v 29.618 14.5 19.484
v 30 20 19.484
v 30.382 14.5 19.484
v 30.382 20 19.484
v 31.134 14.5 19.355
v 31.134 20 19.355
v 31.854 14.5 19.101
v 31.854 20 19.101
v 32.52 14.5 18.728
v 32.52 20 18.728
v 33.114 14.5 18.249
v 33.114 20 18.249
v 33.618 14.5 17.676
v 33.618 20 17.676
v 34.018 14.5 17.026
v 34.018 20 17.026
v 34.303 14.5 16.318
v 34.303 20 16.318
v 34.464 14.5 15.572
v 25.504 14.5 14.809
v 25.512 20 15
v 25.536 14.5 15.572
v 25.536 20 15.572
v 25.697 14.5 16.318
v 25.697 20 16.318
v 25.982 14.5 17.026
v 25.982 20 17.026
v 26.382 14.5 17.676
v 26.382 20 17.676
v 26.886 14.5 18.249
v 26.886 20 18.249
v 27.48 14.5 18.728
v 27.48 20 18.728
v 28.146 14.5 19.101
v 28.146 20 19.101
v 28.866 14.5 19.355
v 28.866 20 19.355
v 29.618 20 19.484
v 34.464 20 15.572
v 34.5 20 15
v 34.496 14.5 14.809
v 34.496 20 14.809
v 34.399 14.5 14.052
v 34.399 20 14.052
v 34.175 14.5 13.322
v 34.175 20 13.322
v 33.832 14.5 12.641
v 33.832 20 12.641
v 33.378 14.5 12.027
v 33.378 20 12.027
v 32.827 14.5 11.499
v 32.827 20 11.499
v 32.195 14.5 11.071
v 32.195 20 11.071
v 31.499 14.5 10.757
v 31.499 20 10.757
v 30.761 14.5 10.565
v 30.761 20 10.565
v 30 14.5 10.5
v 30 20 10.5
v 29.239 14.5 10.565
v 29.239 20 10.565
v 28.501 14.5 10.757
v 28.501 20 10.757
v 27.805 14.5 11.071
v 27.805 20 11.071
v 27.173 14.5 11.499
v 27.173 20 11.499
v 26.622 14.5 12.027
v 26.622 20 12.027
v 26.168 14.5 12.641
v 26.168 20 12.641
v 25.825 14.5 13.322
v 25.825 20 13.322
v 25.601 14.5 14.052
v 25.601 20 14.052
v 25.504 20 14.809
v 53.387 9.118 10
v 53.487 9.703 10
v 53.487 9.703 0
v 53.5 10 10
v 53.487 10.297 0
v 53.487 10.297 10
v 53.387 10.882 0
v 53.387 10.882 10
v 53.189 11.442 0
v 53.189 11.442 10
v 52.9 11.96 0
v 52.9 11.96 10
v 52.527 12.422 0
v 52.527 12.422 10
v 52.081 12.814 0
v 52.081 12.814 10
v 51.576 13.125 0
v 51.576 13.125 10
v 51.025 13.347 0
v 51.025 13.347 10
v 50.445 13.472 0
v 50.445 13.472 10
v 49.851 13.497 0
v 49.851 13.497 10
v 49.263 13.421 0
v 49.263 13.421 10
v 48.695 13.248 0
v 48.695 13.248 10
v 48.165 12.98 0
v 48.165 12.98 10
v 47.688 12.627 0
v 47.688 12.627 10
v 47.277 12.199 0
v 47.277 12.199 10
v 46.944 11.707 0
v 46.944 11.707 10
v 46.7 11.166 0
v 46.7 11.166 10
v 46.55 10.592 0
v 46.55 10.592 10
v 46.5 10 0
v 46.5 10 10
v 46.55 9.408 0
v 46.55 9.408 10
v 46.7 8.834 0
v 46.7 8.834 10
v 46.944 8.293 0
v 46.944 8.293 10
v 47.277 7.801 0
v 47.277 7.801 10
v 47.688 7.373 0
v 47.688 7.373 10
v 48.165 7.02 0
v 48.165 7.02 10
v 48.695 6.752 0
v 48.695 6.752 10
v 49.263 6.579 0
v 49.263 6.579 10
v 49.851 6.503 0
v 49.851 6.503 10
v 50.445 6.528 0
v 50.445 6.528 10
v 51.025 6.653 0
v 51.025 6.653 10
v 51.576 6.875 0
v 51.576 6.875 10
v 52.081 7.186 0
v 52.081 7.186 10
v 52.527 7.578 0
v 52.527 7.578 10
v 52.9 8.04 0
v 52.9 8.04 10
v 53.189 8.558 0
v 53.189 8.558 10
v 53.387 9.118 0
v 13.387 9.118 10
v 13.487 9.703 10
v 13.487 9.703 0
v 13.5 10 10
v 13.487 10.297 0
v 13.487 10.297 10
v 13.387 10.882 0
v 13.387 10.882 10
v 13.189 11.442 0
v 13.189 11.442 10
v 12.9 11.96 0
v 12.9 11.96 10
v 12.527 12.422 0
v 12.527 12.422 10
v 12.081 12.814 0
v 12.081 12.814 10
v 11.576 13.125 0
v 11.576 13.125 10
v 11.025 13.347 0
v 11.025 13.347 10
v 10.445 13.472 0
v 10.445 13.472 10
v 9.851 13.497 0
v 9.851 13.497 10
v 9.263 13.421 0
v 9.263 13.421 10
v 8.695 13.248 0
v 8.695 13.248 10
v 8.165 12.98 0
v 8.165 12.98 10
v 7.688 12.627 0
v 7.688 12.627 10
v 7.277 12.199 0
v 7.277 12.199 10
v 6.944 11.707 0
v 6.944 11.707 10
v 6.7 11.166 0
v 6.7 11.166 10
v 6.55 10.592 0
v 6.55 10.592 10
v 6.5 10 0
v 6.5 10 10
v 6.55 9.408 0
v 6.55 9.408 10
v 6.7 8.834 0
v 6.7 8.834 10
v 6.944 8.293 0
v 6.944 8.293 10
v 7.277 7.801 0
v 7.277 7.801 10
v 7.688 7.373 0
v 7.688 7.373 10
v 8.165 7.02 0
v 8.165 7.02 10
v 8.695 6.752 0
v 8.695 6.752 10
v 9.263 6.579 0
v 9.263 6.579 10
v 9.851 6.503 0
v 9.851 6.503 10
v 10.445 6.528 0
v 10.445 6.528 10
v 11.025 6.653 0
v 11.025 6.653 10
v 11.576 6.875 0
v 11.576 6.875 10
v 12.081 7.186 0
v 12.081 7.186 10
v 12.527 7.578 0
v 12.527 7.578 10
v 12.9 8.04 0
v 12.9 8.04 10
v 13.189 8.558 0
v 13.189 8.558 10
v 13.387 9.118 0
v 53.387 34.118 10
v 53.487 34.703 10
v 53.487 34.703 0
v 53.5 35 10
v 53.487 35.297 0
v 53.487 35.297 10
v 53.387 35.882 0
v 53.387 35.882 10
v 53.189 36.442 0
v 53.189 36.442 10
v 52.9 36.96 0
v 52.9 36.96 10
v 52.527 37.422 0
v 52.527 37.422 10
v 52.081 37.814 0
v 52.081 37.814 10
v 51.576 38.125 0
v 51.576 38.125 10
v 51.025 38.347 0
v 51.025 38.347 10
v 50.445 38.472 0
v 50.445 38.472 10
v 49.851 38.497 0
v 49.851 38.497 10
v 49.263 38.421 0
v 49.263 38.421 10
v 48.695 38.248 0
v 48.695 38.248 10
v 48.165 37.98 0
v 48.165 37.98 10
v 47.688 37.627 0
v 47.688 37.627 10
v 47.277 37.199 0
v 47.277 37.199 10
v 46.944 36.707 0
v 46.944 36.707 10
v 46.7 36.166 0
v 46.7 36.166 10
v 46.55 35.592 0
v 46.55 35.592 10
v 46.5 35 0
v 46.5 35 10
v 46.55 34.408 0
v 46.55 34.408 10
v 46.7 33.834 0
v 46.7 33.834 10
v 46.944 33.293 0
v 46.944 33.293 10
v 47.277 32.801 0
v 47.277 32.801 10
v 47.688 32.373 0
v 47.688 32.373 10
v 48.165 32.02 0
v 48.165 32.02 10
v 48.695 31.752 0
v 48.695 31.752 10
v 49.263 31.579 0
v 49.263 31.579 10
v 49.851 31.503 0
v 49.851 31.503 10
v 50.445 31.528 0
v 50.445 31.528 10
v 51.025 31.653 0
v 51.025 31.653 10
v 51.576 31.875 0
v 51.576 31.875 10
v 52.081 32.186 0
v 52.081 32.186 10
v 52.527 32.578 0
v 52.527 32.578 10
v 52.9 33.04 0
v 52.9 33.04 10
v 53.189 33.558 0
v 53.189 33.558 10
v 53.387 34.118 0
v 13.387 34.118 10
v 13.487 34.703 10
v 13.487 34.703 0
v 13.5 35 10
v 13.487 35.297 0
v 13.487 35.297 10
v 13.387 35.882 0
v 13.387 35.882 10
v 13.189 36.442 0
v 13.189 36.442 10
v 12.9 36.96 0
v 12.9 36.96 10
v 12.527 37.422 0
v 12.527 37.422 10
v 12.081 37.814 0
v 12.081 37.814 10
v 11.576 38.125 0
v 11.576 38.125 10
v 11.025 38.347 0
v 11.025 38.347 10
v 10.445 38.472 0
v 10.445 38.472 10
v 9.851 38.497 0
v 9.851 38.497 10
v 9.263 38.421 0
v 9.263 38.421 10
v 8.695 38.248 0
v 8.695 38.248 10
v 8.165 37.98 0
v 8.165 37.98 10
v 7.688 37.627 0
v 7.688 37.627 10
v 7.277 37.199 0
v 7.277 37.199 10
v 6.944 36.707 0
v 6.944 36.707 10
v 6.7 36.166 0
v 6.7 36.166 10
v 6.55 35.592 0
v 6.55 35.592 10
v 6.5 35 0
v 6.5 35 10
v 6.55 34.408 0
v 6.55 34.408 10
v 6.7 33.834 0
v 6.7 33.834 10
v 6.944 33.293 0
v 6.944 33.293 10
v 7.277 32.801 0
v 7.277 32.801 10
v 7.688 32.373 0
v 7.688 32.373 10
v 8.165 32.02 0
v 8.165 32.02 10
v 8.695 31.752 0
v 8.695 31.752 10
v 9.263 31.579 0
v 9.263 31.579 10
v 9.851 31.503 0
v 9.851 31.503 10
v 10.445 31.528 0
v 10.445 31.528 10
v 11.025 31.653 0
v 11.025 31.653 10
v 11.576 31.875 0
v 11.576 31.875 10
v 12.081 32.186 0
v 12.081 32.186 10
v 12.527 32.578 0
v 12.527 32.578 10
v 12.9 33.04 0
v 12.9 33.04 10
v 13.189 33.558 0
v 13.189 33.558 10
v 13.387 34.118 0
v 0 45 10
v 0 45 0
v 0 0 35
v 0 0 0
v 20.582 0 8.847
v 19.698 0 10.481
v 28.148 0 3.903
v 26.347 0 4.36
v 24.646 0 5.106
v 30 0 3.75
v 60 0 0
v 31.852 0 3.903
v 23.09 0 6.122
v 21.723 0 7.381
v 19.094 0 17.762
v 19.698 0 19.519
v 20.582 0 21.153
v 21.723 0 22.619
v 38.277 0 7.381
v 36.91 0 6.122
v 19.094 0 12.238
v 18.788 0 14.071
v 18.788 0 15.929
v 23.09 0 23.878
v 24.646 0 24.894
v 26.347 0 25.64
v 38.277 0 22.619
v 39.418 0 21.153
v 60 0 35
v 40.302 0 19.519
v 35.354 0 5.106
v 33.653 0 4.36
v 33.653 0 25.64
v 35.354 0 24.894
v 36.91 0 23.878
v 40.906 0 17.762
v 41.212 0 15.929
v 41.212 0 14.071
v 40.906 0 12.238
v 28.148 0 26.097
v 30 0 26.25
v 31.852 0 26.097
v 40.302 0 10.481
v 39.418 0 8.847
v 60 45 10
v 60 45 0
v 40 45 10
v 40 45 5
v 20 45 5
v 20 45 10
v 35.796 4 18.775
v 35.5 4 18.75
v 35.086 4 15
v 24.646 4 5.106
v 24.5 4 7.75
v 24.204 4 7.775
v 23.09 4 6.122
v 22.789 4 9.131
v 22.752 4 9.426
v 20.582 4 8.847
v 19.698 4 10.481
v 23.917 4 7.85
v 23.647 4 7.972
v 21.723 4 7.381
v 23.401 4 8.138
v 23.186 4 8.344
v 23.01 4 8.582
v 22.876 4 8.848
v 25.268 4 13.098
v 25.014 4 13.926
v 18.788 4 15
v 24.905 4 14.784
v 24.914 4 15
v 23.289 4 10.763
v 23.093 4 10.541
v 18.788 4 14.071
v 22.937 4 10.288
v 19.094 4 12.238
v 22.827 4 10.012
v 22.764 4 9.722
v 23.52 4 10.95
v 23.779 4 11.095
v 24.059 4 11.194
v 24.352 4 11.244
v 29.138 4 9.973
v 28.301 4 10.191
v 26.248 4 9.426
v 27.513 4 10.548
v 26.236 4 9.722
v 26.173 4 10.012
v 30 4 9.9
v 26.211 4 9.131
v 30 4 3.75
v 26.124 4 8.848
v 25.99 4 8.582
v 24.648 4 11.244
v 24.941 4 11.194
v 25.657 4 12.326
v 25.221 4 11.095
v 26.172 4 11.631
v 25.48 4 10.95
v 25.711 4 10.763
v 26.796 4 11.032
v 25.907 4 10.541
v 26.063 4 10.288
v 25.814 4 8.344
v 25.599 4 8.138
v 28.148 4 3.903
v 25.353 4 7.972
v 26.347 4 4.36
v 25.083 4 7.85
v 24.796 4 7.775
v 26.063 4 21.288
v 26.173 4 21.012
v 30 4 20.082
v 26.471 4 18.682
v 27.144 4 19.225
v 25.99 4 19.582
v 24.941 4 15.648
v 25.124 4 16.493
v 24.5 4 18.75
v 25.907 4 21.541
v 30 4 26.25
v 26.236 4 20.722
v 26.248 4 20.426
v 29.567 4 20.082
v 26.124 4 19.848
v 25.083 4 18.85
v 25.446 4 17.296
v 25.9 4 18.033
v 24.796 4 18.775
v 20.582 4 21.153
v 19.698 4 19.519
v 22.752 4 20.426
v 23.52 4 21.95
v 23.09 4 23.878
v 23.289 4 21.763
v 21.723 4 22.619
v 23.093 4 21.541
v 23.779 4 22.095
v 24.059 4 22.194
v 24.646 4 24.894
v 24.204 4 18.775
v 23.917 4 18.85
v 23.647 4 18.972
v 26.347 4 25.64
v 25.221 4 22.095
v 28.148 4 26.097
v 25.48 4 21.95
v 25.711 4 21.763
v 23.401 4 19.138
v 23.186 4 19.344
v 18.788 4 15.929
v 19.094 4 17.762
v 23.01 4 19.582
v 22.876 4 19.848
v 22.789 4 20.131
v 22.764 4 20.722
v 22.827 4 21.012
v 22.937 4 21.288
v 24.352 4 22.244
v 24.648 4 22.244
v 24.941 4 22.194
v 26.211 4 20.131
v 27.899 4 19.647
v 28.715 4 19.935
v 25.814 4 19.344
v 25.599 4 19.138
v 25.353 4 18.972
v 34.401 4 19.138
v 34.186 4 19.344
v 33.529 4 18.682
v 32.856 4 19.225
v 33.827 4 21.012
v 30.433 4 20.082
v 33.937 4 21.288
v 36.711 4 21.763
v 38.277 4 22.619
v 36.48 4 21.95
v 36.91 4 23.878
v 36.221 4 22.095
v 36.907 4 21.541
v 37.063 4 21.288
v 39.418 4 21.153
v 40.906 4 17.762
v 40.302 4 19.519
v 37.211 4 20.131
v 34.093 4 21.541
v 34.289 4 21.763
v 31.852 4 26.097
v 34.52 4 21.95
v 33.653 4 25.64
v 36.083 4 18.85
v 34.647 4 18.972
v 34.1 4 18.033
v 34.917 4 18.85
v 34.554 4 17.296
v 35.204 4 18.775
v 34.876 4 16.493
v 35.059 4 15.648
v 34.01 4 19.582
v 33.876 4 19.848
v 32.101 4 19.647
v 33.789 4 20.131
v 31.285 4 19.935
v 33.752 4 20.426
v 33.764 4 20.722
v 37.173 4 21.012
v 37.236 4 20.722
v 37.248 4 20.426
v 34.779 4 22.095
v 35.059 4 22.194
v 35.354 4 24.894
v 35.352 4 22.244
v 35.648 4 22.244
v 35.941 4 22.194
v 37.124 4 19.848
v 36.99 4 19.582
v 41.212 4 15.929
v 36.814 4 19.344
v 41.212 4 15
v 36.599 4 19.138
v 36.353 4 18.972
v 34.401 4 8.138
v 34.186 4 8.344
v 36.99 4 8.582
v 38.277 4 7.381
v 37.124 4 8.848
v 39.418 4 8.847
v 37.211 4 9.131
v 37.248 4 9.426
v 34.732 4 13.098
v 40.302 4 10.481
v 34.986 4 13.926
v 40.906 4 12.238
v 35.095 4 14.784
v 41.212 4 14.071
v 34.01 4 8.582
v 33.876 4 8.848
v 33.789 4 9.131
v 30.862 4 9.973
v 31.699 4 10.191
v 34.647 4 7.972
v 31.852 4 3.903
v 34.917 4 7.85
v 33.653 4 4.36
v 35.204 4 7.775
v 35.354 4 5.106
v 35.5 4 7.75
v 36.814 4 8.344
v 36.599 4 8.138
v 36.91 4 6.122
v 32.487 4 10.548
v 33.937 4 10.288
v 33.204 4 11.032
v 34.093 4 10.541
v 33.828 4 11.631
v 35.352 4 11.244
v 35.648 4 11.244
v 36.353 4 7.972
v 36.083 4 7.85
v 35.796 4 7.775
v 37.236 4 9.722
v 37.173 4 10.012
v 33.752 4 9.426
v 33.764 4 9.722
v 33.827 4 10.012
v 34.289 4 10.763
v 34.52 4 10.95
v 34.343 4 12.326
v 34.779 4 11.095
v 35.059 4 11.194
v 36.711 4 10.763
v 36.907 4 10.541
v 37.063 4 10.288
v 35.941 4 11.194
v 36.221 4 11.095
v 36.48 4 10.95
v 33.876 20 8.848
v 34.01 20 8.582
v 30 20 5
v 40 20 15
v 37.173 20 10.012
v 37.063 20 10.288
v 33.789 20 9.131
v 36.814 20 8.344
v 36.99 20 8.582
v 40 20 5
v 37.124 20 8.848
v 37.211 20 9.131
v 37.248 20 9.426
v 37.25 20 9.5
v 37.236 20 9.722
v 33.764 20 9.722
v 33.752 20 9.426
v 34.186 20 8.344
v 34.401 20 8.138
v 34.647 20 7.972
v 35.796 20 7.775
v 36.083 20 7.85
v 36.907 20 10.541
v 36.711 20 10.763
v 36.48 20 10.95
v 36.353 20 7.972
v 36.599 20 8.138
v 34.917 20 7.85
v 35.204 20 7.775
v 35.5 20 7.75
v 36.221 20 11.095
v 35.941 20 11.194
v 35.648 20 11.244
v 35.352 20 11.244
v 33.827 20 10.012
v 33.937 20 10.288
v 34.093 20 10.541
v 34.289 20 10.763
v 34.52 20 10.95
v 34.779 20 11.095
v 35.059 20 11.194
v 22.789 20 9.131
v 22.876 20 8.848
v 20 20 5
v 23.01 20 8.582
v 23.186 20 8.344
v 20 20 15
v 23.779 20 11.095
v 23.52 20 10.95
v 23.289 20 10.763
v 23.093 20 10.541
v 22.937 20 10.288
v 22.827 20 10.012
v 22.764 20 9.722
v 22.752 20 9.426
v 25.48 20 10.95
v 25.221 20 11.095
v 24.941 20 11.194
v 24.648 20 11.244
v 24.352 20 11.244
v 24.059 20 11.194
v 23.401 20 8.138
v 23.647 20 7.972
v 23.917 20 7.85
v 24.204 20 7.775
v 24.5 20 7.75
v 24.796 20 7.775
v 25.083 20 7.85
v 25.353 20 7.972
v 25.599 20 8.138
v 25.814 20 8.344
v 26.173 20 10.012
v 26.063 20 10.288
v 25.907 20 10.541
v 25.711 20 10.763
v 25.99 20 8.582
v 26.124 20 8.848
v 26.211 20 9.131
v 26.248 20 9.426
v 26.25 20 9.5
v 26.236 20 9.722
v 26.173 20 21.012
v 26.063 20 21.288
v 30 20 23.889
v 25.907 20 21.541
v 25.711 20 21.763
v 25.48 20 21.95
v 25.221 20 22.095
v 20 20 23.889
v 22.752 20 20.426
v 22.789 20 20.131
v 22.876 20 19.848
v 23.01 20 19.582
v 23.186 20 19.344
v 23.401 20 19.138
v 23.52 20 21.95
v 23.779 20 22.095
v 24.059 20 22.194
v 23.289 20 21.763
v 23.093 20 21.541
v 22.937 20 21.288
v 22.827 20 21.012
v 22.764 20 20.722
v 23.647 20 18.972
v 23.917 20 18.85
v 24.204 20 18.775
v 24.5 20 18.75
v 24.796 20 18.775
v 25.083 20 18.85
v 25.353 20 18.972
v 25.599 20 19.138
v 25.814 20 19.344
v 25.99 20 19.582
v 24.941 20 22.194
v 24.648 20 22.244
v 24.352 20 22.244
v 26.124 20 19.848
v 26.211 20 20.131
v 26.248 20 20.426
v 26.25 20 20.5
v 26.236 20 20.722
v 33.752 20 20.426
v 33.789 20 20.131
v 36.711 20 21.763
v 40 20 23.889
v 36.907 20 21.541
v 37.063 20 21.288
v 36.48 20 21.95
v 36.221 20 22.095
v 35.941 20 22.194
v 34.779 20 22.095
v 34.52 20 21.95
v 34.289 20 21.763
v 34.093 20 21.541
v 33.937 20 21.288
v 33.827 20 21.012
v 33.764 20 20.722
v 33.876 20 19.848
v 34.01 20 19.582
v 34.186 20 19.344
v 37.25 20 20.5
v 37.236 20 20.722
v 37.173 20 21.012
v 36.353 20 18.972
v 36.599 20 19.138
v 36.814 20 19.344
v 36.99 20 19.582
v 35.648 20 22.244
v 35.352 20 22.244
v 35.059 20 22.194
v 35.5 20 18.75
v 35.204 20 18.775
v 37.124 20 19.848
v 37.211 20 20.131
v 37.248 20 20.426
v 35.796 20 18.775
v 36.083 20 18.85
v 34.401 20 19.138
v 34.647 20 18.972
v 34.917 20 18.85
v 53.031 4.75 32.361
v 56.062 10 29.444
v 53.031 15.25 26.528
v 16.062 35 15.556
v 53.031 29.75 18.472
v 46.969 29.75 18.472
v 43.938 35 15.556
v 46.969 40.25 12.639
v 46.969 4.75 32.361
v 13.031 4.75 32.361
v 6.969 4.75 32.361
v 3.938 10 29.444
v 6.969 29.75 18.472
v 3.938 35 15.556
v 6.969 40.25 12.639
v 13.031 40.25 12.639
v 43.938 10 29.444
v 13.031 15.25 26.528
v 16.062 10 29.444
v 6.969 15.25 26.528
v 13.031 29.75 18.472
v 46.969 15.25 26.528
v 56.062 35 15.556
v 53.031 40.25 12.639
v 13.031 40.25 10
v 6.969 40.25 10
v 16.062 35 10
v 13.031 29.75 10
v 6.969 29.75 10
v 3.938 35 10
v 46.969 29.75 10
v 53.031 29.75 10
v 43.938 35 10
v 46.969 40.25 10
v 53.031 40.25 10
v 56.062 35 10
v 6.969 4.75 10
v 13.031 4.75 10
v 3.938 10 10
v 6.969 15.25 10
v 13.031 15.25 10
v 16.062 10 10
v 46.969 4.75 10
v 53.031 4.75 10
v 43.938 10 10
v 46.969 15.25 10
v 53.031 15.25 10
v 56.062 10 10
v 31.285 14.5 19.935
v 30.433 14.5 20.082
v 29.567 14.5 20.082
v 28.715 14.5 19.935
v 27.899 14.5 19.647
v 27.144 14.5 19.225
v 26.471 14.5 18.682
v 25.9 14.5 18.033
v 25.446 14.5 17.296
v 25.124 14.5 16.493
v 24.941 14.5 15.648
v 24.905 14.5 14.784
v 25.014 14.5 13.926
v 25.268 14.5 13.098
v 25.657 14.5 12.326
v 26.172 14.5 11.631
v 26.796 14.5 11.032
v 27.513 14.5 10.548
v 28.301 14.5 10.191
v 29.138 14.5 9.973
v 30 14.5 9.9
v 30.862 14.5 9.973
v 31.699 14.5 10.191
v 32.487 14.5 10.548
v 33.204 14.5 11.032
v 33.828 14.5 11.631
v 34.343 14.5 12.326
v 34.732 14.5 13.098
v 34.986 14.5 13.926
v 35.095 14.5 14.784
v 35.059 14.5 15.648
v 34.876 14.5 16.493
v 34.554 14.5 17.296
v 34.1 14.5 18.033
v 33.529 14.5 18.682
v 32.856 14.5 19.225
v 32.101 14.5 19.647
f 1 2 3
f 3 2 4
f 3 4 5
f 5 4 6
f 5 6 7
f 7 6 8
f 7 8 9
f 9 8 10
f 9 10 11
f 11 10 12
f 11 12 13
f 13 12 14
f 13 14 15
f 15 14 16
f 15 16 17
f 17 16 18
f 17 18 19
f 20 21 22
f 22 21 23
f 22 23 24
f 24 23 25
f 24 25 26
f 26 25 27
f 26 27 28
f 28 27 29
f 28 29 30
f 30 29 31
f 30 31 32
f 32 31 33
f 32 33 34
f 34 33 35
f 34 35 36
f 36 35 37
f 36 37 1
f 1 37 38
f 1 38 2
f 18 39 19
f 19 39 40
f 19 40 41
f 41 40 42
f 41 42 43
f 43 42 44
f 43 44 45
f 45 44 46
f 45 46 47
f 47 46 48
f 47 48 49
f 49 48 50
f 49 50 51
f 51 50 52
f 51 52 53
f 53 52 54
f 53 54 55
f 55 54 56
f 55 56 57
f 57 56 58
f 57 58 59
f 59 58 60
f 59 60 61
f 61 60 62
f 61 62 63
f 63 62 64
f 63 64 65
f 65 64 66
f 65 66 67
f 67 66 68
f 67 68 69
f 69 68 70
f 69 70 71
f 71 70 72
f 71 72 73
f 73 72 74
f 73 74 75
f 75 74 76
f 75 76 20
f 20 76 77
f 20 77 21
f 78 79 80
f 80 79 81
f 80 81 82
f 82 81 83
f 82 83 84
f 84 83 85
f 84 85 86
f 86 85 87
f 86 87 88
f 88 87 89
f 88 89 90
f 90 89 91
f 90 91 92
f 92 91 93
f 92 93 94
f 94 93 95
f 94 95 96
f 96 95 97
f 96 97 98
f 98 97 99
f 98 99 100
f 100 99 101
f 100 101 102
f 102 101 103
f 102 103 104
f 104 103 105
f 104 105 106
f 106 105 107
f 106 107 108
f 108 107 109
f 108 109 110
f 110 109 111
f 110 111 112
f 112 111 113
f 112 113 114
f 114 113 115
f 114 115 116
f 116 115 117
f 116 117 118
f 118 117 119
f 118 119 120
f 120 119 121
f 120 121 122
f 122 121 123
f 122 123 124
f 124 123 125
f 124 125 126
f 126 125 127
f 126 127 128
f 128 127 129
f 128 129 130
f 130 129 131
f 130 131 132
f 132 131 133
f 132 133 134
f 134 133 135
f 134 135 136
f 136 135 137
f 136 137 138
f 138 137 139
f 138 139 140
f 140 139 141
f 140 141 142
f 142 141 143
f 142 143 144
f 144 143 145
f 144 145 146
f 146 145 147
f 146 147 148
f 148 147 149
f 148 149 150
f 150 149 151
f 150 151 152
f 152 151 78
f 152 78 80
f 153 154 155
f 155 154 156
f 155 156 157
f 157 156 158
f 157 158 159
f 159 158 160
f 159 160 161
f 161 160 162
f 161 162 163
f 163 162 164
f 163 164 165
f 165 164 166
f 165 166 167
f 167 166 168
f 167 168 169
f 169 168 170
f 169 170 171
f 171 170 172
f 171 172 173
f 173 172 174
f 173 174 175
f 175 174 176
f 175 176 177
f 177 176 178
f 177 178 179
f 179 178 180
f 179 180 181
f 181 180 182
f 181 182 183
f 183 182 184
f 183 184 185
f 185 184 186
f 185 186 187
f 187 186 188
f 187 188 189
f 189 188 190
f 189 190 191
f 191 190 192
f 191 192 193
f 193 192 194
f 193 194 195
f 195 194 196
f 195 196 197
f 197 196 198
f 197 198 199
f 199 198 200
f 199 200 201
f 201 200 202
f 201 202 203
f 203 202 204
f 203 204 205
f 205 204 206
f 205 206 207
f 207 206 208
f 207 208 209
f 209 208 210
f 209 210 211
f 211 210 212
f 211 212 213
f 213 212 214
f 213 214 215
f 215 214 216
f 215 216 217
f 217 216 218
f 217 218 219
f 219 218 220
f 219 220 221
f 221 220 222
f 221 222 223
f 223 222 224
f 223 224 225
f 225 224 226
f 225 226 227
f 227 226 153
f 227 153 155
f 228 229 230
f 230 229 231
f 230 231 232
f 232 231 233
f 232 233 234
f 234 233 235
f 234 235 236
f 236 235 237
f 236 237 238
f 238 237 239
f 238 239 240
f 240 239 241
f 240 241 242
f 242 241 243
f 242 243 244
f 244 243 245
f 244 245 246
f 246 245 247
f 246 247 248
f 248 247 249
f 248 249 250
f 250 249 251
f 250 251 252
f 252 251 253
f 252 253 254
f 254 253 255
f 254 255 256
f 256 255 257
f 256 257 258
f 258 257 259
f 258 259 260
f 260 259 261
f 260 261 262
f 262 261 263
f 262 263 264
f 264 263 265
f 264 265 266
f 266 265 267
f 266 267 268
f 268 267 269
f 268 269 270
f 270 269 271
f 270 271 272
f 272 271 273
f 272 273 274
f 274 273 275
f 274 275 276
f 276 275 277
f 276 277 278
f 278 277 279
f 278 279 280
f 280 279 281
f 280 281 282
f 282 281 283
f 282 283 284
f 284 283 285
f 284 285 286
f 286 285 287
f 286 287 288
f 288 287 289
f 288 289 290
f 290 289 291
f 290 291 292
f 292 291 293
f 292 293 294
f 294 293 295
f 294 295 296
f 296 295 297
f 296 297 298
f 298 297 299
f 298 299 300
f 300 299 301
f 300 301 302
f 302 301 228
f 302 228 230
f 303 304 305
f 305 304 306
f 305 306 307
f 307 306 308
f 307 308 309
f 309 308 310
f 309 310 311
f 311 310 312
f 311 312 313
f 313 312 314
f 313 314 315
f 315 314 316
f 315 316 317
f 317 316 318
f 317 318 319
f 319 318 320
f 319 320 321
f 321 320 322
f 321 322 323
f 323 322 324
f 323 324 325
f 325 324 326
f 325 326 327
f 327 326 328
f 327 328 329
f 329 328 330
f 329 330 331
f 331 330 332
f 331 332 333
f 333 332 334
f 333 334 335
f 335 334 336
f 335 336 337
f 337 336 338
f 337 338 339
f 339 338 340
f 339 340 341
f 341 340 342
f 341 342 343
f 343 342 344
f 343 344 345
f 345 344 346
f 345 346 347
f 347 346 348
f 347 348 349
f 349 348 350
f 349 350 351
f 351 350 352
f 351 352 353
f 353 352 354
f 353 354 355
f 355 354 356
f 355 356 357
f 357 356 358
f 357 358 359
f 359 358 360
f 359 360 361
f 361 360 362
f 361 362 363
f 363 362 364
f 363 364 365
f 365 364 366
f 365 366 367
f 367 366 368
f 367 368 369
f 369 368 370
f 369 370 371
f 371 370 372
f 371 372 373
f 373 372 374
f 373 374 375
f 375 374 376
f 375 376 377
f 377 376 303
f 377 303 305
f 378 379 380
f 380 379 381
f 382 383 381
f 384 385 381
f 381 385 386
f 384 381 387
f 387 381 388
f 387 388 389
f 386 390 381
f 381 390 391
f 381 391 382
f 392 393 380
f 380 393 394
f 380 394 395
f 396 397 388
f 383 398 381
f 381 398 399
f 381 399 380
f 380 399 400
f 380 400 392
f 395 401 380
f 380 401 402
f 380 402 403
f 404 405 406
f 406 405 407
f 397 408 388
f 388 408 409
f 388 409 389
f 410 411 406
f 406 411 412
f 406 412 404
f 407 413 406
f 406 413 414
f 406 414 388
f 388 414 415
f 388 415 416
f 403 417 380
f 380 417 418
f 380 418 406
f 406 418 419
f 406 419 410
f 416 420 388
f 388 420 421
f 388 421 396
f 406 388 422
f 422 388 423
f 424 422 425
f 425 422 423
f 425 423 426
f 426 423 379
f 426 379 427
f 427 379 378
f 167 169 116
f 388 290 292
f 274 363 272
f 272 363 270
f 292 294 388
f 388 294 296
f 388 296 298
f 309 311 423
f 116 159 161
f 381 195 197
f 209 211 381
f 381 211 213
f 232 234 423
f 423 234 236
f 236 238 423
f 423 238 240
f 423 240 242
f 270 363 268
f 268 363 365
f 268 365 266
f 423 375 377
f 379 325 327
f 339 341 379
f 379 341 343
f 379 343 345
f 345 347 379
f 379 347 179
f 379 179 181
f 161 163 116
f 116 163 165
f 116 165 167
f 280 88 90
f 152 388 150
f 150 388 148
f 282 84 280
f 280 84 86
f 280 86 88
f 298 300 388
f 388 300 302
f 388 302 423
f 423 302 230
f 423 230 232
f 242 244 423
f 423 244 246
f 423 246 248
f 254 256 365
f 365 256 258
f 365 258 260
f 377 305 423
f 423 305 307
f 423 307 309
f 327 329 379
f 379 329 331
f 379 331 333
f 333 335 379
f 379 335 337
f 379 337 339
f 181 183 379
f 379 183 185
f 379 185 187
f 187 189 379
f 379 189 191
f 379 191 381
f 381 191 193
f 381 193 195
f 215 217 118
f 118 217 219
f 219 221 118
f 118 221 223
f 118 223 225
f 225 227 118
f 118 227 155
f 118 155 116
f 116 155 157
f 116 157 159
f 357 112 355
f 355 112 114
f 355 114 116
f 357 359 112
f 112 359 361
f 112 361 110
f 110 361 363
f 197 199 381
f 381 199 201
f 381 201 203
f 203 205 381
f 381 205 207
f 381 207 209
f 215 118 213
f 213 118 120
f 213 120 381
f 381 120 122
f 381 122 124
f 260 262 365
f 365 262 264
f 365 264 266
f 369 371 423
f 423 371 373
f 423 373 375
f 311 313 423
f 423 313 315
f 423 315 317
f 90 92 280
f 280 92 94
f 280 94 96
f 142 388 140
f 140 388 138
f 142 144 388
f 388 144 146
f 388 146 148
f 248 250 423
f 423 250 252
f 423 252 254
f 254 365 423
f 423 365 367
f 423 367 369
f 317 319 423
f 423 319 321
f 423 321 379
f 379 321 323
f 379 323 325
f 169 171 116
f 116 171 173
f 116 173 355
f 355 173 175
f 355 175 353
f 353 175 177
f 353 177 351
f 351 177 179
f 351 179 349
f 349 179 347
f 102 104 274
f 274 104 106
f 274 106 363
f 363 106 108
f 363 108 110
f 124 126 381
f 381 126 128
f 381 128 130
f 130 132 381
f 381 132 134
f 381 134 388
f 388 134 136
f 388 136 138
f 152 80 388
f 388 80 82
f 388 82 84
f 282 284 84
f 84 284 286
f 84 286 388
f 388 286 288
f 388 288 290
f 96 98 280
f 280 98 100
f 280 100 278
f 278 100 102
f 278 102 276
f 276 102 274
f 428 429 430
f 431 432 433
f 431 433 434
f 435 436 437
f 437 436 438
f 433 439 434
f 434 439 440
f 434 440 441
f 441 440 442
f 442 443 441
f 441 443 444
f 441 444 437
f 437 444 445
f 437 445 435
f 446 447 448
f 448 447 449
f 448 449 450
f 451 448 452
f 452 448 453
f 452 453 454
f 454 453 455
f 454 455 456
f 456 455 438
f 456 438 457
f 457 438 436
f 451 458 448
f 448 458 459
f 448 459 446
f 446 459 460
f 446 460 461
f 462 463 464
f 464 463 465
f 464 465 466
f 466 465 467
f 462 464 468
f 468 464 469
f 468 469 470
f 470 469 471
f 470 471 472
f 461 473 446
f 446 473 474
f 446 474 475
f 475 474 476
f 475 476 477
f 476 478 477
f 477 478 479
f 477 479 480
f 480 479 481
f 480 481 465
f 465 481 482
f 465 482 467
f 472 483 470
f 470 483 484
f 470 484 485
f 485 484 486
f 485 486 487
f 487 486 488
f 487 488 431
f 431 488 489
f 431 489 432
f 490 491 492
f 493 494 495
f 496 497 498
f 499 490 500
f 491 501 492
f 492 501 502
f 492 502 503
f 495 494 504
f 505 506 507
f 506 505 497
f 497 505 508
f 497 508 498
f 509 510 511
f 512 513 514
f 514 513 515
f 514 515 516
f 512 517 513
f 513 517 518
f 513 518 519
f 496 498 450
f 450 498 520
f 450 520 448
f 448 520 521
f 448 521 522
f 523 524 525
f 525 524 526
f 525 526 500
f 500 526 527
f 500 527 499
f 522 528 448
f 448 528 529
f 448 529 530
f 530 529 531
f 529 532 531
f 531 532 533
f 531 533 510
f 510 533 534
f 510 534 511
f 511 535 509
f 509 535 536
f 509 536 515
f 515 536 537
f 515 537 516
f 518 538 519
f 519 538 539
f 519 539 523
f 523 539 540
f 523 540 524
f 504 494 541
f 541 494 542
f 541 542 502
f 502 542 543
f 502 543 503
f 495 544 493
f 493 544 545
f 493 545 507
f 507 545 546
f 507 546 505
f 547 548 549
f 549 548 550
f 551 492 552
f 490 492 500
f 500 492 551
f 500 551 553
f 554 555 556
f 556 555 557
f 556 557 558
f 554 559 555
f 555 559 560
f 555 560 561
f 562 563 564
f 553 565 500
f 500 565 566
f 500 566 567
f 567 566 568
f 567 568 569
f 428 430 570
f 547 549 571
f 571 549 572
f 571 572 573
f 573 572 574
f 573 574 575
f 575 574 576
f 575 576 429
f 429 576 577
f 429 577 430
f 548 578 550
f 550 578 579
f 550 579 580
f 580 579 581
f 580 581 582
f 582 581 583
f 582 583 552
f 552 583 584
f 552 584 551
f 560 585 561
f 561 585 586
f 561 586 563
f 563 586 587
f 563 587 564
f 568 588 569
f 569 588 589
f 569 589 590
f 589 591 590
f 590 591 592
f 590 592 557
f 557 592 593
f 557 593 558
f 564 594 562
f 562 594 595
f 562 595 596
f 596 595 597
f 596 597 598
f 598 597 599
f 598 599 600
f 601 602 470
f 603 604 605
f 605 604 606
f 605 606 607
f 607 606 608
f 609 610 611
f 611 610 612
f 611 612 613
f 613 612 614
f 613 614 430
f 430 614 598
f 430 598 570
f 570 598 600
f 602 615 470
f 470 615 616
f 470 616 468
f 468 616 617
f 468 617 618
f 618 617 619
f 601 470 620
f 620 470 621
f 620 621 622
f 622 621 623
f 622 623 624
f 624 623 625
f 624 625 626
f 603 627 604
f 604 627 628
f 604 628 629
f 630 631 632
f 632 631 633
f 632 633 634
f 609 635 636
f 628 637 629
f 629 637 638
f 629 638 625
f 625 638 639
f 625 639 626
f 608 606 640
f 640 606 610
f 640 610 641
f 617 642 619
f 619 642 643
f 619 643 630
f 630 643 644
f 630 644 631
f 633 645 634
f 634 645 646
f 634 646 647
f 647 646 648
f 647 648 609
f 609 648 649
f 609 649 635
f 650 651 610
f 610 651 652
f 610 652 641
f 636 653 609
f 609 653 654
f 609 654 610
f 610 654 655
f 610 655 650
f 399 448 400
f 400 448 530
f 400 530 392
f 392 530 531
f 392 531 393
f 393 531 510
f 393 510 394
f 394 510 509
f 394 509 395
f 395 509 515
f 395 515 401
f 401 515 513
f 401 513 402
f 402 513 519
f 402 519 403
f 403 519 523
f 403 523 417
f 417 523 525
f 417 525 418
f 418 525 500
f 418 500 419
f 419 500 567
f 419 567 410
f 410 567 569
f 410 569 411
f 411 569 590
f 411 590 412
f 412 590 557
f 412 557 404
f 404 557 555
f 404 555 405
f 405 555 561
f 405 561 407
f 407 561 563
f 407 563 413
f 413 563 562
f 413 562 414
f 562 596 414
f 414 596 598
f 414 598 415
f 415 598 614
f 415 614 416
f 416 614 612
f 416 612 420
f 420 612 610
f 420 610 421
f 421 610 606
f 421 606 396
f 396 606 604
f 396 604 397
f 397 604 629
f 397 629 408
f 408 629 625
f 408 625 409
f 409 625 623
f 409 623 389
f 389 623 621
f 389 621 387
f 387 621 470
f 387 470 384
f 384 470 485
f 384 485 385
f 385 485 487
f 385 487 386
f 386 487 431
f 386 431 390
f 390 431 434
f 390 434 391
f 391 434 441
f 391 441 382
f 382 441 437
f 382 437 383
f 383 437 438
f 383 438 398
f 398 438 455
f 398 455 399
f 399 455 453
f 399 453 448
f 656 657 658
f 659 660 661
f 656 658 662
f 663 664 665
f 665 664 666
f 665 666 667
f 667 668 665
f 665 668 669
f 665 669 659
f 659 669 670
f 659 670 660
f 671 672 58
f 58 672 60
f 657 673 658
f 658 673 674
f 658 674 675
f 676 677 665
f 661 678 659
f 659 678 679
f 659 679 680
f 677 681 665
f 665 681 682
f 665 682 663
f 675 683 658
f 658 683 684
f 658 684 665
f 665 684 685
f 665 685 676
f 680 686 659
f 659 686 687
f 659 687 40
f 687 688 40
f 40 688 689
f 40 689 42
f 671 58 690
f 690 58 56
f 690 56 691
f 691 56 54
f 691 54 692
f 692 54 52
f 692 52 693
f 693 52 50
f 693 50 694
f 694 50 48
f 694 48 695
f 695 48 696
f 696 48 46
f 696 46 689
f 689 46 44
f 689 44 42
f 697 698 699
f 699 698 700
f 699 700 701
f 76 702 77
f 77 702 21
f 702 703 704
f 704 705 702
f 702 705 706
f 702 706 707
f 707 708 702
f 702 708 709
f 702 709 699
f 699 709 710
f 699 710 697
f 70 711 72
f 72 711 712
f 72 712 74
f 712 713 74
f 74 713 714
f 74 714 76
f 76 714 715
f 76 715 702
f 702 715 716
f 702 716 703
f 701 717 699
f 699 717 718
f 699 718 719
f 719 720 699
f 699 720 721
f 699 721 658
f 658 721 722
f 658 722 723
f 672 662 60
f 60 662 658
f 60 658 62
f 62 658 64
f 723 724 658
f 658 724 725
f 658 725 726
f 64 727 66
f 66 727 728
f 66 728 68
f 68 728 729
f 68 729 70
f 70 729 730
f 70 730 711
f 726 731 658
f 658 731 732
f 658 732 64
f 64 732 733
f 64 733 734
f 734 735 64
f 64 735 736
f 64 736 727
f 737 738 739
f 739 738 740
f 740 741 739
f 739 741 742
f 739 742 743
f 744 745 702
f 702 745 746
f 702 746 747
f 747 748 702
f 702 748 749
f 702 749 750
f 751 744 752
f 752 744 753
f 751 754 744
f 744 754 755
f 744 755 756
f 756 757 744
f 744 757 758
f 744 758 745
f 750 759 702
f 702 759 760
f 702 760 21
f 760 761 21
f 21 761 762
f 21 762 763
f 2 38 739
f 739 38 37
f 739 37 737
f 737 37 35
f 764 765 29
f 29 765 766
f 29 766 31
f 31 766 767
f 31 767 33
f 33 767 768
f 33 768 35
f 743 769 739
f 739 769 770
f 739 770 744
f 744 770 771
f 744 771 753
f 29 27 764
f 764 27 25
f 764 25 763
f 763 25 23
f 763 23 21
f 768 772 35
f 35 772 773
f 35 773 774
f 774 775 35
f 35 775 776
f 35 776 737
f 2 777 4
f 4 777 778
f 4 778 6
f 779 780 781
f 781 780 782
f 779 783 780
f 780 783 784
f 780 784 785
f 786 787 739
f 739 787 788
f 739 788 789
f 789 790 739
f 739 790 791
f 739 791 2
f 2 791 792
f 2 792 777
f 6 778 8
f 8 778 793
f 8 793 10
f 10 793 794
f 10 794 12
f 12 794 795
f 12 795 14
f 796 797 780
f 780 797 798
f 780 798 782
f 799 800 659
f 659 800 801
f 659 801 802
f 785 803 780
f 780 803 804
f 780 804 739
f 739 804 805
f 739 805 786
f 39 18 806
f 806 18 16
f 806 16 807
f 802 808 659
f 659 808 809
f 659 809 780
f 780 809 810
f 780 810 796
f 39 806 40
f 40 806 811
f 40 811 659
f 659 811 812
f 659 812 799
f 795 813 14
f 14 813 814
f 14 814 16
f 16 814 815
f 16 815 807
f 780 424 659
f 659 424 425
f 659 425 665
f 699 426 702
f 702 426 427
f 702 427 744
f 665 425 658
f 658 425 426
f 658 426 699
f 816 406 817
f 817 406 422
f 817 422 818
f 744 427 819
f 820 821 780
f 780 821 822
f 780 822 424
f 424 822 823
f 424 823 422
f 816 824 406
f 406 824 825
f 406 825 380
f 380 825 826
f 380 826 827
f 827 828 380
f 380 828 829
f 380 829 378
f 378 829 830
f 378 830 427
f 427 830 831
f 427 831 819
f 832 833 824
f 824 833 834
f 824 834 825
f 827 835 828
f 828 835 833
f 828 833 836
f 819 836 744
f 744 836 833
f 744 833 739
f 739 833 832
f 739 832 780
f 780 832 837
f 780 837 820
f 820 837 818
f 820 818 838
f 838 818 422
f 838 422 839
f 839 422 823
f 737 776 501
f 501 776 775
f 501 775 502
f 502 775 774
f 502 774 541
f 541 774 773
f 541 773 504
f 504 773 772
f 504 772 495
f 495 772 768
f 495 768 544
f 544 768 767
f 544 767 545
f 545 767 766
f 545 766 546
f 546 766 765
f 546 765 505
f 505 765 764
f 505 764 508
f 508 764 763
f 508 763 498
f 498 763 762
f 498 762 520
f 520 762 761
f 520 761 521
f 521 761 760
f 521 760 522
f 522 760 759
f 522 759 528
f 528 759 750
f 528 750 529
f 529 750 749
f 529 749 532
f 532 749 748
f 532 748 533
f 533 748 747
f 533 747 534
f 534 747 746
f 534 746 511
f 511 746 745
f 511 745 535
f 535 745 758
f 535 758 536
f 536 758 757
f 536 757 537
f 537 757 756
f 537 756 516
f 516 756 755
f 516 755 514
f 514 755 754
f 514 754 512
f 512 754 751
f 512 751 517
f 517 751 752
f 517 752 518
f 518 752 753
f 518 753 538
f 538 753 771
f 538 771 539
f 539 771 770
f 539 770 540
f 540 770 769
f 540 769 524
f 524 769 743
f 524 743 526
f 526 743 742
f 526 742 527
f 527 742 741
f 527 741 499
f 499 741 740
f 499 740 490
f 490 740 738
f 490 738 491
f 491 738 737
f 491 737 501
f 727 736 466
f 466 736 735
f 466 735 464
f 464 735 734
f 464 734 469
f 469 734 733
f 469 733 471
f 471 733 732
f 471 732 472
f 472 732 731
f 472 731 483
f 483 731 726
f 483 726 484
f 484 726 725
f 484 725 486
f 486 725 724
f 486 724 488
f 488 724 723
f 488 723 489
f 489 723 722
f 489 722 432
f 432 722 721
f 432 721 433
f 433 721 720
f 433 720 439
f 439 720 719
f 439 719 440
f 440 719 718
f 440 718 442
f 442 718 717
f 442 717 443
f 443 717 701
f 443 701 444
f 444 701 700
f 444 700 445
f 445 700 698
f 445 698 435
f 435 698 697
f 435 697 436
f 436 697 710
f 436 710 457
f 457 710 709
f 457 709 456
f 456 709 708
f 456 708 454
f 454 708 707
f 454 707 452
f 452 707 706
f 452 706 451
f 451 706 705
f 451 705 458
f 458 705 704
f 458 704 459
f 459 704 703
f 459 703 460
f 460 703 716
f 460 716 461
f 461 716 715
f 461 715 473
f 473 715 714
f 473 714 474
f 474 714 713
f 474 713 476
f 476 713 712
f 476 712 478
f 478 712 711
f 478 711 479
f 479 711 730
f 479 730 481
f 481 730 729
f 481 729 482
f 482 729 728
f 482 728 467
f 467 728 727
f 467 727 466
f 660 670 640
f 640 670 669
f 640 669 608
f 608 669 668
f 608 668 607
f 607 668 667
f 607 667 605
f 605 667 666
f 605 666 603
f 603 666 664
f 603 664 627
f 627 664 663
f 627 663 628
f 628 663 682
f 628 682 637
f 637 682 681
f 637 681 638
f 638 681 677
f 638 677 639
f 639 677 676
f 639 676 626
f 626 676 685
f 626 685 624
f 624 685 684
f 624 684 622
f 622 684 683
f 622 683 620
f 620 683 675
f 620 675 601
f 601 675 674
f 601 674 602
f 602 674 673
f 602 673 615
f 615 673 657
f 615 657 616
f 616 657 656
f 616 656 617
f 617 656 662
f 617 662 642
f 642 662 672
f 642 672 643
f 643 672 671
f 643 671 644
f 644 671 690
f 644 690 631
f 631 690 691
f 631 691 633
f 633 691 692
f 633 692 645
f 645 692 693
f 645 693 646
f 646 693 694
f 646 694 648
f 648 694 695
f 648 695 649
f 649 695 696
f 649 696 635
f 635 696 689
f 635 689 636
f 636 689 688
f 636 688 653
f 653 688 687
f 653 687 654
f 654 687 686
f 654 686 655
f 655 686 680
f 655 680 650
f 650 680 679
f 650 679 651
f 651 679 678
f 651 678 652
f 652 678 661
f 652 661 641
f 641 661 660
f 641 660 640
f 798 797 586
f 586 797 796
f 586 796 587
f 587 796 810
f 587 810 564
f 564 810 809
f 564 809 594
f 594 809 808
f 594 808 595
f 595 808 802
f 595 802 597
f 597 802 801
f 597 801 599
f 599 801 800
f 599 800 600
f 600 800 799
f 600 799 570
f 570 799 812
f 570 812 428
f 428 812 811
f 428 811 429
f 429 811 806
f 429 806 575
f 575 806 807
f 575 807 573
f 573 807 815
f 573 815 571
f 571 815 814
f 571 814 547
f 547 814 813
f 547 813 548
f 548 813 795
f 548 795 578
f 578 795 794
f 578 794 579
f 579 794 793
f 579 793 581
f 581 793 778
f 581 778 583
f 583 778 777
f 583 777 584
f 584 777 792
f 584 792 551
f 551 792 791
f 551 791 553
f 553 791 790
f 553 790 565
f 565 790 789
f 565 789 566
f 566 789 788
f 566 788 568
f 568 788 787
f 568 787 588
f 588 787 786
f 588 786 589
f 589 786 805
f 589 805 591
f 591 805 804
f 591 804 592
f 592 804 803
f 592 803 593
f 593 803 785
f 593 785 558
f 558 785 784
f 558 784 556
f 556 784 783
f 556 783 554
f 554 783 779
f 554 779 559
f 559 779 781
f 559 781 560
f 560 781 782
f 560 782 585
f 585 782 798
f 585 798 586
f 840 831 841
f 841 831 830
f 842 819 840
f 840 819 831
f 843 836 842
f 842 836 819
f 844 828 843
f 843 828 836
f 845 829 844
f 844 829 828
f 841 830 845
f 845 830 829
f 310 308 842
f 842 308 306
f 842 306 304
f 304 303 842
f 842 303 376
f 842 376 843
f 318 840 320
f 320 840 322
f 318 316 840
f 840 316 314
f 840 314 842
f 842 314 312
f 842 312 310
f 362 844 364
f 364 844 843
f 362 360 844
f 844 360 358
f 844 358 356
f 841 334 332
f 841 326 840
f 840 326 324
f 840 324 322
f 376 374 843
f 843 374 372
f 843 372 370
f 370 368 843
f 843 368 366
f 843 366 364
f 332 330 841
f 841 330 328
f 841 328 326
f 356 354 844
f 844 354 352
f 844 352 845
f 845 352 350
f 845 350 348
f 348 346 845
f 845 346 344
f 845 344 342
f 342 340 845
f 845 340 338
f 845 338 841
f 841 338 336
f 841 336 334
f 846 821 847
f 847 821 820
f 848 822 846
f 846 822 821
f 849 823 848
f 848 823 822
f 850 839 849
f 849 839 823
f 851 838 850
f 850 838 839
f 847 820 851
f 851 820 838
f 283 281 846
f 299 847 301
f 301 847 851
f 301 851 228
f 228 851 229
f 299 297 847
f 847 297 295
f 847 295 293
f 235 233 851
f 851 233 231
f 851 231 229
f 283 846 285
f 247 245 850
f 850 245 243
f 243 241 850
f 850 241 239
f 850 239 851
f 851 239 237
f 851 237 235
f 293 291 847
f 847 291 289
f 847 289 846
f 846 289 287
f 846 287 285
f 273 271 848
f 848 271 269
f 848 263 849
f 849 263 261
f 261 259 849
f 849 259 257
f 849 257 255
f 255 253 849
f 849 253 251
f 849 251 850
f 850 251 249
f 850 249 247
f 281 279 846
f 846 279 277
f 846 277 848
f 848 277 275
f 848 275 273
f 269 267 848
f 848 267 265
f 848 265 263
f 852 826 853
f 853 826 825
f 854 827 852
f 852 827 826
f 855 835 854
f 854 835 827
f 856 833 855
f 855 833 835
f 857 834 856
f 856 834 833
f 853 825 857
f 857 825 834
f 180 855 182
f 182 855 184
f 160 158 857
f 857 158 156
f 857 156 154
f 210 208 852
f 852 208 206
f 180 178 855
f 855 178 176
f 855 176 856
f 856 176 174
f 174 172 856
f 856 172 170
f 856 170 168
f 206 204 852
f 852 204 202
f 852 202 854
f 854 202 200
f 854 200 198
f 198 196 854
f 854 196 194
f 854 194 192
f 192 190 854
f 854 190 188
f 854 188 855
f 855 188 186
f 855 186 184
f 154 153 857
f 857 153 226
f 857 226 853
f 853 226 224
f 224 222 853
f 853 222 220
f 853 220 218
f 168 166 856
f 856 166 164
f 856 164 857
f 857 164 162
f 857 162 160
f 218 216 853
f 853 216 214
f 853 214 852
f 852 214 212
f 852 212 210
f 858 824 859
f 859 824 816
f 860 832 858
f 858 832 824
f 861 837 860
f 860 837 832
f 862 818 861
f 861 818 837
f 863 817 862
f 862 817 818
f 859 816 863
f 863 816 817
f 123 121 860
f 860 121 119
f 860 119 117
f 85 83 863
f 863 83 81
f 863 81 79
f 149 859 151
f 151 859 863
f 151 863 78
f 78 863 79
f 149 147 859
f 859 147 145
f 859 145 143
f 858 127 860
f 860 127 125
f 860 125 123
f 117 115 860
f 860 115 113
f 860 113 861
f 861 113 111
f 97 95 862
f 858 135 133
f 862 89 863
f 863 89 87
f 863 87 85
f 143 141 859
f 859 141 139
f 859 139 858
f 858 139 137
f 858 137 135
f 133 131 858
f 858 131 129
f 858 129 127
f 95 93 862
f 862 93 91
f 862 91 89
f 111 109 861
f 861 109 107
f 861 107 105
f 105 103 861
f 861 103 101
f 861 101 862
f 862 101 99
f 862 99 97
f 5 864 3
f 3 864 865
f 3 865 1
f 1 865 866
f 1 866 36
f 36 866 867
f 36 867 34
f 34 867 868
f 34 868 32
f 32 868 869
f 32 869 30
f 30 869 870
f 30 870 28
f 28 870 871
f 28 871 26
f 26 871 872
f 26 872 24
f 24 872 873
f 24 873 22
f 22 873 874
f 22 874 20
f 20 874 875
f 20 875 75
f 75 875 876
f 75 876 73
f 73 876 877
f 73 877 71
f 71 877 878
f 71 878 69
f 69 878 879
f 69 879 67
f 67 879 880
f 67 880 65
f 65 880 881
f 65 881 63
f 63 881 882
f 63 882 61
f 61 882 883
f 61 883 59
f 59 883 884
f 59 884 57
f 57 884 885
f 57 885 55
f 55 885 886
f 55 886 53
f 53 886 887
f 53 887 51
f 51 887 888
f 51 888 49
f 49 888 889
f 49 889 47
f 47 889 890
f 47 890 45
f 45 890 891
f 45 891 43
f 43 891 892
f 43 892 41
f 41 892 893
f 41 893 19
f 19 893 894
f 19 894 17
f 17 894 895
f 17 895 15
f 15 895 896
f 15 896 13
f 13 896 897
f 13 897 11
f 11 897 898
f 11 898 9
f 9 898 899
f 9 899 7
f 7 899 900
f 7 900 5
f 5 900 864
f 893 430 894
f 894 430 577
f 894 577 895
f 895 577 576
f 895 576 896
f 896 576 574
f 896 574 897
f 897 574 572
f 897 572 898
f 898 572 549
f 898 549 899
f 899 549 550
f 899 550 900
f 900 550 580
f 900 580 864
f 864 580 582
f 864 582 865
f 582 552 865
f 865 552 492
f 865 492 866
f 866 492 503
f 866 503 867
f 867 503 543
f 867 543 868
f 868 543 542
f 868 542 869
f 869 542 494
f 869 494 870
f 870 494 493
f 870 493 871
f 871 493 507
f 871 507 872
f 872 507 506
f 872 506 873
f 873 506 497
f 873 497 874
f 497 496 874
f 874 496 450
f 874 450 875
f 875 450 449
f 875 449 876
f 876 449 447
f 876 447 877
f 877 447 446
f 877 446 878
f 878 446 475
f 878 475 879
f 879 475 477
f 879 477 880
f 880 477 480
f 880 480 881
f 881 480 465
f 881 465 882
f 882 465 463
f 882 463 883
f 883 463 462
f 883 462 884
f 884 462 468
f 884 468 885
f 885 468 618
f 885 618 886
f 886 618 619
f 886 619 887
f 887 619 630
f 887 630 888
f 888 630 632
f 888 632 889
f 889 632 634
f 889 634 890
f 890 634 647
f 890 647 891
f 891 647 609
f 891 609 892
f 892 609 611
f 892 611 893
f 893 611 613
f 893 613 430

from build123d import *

# Parameters (mm, degrees)
SKETCH1_W           = 60
SKETCH1_H           = 45
BOSS_EXTRUDE1_DEPTH = 35
SKETCH2_R           = 4.5
CUT_EXTRUDE1_DEPTH  = 50
SKETCH3_R           = 11.25
CUT_EXTRUDE2_DEPTH  = 4
SKETCH6_W           = 20
SKETCH6_H           = 25
CUT_EXTRUDE4_DEPTH  = 30
CUT_EXTRUDE3_DEPTH  = 80
SKETCH7_R           = 1.75
CUT_EXTRUDE5_DEPTH  = 25
SKETCH8_R           = 3.5
CUT_EXTRUDE6_DEPTH  = 44
CUT_EXTRUDE7_START  = 35
CUT_EXTRUDE7_DEPTH  = 25
SKETCH10_R          = 5.1
CUT_EXTRUDE8_DEPTH  = 10.5


with BuildPart() as part:
    # Sketch1 → Boss-Extrude1 (new body)
    with BuildSketch(Plane.XY):
        with Locations((30, 22.5)):
            Rectangle(SKETCH1_W, SKETCH1_H)
    extrude(amount=BOSS_EXTRUDE1_DEPTH)

    # Sketch2 → Cut-Extrude1 (cut)
    with BuildSketch(Plane.XZ):
        with Locations(Location((30, 15, 0), (0, 0, 270))):
            Circle(SKETCH2_R)
    extrude(amount=-CUT_EXTRUDE1_DEPTH, mode=Mode.SUBTRACT)

    # Sketch3 → Cut-Extrude2 (cut)
    with BuildSketch(Plane.XZ):
        with Locations(Location((30, 15, 0), (0, 0, 270))):
            Circle(SKETCH3_R)
    extrude(amount=-CUT_EXTRUDE2_DEPTH, mode=Mode.SUBTRACT)

    # Sketch6 → Cut-Extrude4 (cut)
    with BuildSketch(Plane.XY.offset(35)):
        with Locations((30, 32.5)):
            Rectangle(SKETCH6_W, SKETCH6_H)
    extrude(amount=-CUT_EXTRUDE4_DEPTH, mode=Mode.SUBTRACT)

    # Sketch4 → Cut-Extrude3 (cut)
    with BuildSketch(Plane(origin=(60, 0, 0), x_dir=(0, 0, -1), z_dir=(1, 0, 0))):
        Polygon((-35, 0), (-10, 45), (-35, 45), align=None)
    extrude(amount=-CUT_EXTRUDE3_DEPTH, mode=Mode.SUBTRACT)

    # Sketch7 → Cut-Extrude5 (cut)
    with BuildSketch(Plane.XZ.offset(-4)):
        with Locations(Location((24.5, 20.5, 0), (0, 0, 270))):
            Circle(SKETCH7_R)
        with Locations(Location((35.5, 20.5, 0), (0, 0, 270))):
            Circle(SKETCH7_R)
        with Locations(Location((35.5, 9.5, 0), (0, 0, 270))):
            Circle(SKETCH7_R)
        with Locations(Location((24.5, 9.5, 0), (0, 0, 270))):
            Circle(SKETCH7_R)
    extrude(amount=-CUT_EXTRUDE5_DEPTH, mode=Mode.SUBTRACT)

    # Sketch8 → Cut-Extrude6 (cut)
    with BuildSketch(Plane(origin=(0, 0, 0), x_dir=(-1, 0, 0), z_dir=(0, 0, -1))):
        with Locations((-50, 10)):
            Circle(SKETCH8_R)
        with Locations((-50, 35)):
            Circle(SKETCH8_R)
        with Locations((-10, 35)):
            Circle(SKETCH8_R)
        with Locations((-10, 10)):
            Circle(SKETCH8_R)
    extrude(amount=-CUT_EXTRUDE6_DEPTH, mode=Mode.SUBTRACT)

    # Sketch9 → Cut-Extrude7 (cut)
    with BuildSketch(Plane.XY.offset(CUT_EXTRUDE7_START)):
        Polygon((6.968911087, 40.25), (3.937822174, 35), (6.968911087, 29.75), (13.031088913, 29.75), (16.062177826, 35), (13.031088913, 40.25), align=None)
        Polygon((13.031088913, 4.75), (16.062177826, 10), (13.031088913, 15.25), (6.968911087, 15.25), (3.937822174, 10), (6.968911087, 4.75), align=None)
        Polygon((53.031088913, 29.75), (56.062177826, 35), (53.031088913, 40.25), (46.968911087, 40.25), (43.937822174, 35), (46.968911087, 29.75), align=None)
        Polygon((53.031088913, 4.75), (56.062177826, 10), (53.031088913, 15.25), (46.968911087, 15.25), (43.937822174, 10), (46.968911087, 4.75), align=None)
    extrude(amount=-CUT_EXTRUDE7_DEPTH, mode=Mode.SUBTRACT)

    # Sketch10 → Cut-Extrude8 (cut)
    with BuildSketch(Plane.XZ.offset(-4)):
        with Locations(Location((30, 15, 0), (0, 0, 270))):
            Circle(SKETCH10_R)
    extrude(amount=-CUT_EXTRUDE8_DEPTH, mode=Mode.SUBTRACT)


solid = part.part
